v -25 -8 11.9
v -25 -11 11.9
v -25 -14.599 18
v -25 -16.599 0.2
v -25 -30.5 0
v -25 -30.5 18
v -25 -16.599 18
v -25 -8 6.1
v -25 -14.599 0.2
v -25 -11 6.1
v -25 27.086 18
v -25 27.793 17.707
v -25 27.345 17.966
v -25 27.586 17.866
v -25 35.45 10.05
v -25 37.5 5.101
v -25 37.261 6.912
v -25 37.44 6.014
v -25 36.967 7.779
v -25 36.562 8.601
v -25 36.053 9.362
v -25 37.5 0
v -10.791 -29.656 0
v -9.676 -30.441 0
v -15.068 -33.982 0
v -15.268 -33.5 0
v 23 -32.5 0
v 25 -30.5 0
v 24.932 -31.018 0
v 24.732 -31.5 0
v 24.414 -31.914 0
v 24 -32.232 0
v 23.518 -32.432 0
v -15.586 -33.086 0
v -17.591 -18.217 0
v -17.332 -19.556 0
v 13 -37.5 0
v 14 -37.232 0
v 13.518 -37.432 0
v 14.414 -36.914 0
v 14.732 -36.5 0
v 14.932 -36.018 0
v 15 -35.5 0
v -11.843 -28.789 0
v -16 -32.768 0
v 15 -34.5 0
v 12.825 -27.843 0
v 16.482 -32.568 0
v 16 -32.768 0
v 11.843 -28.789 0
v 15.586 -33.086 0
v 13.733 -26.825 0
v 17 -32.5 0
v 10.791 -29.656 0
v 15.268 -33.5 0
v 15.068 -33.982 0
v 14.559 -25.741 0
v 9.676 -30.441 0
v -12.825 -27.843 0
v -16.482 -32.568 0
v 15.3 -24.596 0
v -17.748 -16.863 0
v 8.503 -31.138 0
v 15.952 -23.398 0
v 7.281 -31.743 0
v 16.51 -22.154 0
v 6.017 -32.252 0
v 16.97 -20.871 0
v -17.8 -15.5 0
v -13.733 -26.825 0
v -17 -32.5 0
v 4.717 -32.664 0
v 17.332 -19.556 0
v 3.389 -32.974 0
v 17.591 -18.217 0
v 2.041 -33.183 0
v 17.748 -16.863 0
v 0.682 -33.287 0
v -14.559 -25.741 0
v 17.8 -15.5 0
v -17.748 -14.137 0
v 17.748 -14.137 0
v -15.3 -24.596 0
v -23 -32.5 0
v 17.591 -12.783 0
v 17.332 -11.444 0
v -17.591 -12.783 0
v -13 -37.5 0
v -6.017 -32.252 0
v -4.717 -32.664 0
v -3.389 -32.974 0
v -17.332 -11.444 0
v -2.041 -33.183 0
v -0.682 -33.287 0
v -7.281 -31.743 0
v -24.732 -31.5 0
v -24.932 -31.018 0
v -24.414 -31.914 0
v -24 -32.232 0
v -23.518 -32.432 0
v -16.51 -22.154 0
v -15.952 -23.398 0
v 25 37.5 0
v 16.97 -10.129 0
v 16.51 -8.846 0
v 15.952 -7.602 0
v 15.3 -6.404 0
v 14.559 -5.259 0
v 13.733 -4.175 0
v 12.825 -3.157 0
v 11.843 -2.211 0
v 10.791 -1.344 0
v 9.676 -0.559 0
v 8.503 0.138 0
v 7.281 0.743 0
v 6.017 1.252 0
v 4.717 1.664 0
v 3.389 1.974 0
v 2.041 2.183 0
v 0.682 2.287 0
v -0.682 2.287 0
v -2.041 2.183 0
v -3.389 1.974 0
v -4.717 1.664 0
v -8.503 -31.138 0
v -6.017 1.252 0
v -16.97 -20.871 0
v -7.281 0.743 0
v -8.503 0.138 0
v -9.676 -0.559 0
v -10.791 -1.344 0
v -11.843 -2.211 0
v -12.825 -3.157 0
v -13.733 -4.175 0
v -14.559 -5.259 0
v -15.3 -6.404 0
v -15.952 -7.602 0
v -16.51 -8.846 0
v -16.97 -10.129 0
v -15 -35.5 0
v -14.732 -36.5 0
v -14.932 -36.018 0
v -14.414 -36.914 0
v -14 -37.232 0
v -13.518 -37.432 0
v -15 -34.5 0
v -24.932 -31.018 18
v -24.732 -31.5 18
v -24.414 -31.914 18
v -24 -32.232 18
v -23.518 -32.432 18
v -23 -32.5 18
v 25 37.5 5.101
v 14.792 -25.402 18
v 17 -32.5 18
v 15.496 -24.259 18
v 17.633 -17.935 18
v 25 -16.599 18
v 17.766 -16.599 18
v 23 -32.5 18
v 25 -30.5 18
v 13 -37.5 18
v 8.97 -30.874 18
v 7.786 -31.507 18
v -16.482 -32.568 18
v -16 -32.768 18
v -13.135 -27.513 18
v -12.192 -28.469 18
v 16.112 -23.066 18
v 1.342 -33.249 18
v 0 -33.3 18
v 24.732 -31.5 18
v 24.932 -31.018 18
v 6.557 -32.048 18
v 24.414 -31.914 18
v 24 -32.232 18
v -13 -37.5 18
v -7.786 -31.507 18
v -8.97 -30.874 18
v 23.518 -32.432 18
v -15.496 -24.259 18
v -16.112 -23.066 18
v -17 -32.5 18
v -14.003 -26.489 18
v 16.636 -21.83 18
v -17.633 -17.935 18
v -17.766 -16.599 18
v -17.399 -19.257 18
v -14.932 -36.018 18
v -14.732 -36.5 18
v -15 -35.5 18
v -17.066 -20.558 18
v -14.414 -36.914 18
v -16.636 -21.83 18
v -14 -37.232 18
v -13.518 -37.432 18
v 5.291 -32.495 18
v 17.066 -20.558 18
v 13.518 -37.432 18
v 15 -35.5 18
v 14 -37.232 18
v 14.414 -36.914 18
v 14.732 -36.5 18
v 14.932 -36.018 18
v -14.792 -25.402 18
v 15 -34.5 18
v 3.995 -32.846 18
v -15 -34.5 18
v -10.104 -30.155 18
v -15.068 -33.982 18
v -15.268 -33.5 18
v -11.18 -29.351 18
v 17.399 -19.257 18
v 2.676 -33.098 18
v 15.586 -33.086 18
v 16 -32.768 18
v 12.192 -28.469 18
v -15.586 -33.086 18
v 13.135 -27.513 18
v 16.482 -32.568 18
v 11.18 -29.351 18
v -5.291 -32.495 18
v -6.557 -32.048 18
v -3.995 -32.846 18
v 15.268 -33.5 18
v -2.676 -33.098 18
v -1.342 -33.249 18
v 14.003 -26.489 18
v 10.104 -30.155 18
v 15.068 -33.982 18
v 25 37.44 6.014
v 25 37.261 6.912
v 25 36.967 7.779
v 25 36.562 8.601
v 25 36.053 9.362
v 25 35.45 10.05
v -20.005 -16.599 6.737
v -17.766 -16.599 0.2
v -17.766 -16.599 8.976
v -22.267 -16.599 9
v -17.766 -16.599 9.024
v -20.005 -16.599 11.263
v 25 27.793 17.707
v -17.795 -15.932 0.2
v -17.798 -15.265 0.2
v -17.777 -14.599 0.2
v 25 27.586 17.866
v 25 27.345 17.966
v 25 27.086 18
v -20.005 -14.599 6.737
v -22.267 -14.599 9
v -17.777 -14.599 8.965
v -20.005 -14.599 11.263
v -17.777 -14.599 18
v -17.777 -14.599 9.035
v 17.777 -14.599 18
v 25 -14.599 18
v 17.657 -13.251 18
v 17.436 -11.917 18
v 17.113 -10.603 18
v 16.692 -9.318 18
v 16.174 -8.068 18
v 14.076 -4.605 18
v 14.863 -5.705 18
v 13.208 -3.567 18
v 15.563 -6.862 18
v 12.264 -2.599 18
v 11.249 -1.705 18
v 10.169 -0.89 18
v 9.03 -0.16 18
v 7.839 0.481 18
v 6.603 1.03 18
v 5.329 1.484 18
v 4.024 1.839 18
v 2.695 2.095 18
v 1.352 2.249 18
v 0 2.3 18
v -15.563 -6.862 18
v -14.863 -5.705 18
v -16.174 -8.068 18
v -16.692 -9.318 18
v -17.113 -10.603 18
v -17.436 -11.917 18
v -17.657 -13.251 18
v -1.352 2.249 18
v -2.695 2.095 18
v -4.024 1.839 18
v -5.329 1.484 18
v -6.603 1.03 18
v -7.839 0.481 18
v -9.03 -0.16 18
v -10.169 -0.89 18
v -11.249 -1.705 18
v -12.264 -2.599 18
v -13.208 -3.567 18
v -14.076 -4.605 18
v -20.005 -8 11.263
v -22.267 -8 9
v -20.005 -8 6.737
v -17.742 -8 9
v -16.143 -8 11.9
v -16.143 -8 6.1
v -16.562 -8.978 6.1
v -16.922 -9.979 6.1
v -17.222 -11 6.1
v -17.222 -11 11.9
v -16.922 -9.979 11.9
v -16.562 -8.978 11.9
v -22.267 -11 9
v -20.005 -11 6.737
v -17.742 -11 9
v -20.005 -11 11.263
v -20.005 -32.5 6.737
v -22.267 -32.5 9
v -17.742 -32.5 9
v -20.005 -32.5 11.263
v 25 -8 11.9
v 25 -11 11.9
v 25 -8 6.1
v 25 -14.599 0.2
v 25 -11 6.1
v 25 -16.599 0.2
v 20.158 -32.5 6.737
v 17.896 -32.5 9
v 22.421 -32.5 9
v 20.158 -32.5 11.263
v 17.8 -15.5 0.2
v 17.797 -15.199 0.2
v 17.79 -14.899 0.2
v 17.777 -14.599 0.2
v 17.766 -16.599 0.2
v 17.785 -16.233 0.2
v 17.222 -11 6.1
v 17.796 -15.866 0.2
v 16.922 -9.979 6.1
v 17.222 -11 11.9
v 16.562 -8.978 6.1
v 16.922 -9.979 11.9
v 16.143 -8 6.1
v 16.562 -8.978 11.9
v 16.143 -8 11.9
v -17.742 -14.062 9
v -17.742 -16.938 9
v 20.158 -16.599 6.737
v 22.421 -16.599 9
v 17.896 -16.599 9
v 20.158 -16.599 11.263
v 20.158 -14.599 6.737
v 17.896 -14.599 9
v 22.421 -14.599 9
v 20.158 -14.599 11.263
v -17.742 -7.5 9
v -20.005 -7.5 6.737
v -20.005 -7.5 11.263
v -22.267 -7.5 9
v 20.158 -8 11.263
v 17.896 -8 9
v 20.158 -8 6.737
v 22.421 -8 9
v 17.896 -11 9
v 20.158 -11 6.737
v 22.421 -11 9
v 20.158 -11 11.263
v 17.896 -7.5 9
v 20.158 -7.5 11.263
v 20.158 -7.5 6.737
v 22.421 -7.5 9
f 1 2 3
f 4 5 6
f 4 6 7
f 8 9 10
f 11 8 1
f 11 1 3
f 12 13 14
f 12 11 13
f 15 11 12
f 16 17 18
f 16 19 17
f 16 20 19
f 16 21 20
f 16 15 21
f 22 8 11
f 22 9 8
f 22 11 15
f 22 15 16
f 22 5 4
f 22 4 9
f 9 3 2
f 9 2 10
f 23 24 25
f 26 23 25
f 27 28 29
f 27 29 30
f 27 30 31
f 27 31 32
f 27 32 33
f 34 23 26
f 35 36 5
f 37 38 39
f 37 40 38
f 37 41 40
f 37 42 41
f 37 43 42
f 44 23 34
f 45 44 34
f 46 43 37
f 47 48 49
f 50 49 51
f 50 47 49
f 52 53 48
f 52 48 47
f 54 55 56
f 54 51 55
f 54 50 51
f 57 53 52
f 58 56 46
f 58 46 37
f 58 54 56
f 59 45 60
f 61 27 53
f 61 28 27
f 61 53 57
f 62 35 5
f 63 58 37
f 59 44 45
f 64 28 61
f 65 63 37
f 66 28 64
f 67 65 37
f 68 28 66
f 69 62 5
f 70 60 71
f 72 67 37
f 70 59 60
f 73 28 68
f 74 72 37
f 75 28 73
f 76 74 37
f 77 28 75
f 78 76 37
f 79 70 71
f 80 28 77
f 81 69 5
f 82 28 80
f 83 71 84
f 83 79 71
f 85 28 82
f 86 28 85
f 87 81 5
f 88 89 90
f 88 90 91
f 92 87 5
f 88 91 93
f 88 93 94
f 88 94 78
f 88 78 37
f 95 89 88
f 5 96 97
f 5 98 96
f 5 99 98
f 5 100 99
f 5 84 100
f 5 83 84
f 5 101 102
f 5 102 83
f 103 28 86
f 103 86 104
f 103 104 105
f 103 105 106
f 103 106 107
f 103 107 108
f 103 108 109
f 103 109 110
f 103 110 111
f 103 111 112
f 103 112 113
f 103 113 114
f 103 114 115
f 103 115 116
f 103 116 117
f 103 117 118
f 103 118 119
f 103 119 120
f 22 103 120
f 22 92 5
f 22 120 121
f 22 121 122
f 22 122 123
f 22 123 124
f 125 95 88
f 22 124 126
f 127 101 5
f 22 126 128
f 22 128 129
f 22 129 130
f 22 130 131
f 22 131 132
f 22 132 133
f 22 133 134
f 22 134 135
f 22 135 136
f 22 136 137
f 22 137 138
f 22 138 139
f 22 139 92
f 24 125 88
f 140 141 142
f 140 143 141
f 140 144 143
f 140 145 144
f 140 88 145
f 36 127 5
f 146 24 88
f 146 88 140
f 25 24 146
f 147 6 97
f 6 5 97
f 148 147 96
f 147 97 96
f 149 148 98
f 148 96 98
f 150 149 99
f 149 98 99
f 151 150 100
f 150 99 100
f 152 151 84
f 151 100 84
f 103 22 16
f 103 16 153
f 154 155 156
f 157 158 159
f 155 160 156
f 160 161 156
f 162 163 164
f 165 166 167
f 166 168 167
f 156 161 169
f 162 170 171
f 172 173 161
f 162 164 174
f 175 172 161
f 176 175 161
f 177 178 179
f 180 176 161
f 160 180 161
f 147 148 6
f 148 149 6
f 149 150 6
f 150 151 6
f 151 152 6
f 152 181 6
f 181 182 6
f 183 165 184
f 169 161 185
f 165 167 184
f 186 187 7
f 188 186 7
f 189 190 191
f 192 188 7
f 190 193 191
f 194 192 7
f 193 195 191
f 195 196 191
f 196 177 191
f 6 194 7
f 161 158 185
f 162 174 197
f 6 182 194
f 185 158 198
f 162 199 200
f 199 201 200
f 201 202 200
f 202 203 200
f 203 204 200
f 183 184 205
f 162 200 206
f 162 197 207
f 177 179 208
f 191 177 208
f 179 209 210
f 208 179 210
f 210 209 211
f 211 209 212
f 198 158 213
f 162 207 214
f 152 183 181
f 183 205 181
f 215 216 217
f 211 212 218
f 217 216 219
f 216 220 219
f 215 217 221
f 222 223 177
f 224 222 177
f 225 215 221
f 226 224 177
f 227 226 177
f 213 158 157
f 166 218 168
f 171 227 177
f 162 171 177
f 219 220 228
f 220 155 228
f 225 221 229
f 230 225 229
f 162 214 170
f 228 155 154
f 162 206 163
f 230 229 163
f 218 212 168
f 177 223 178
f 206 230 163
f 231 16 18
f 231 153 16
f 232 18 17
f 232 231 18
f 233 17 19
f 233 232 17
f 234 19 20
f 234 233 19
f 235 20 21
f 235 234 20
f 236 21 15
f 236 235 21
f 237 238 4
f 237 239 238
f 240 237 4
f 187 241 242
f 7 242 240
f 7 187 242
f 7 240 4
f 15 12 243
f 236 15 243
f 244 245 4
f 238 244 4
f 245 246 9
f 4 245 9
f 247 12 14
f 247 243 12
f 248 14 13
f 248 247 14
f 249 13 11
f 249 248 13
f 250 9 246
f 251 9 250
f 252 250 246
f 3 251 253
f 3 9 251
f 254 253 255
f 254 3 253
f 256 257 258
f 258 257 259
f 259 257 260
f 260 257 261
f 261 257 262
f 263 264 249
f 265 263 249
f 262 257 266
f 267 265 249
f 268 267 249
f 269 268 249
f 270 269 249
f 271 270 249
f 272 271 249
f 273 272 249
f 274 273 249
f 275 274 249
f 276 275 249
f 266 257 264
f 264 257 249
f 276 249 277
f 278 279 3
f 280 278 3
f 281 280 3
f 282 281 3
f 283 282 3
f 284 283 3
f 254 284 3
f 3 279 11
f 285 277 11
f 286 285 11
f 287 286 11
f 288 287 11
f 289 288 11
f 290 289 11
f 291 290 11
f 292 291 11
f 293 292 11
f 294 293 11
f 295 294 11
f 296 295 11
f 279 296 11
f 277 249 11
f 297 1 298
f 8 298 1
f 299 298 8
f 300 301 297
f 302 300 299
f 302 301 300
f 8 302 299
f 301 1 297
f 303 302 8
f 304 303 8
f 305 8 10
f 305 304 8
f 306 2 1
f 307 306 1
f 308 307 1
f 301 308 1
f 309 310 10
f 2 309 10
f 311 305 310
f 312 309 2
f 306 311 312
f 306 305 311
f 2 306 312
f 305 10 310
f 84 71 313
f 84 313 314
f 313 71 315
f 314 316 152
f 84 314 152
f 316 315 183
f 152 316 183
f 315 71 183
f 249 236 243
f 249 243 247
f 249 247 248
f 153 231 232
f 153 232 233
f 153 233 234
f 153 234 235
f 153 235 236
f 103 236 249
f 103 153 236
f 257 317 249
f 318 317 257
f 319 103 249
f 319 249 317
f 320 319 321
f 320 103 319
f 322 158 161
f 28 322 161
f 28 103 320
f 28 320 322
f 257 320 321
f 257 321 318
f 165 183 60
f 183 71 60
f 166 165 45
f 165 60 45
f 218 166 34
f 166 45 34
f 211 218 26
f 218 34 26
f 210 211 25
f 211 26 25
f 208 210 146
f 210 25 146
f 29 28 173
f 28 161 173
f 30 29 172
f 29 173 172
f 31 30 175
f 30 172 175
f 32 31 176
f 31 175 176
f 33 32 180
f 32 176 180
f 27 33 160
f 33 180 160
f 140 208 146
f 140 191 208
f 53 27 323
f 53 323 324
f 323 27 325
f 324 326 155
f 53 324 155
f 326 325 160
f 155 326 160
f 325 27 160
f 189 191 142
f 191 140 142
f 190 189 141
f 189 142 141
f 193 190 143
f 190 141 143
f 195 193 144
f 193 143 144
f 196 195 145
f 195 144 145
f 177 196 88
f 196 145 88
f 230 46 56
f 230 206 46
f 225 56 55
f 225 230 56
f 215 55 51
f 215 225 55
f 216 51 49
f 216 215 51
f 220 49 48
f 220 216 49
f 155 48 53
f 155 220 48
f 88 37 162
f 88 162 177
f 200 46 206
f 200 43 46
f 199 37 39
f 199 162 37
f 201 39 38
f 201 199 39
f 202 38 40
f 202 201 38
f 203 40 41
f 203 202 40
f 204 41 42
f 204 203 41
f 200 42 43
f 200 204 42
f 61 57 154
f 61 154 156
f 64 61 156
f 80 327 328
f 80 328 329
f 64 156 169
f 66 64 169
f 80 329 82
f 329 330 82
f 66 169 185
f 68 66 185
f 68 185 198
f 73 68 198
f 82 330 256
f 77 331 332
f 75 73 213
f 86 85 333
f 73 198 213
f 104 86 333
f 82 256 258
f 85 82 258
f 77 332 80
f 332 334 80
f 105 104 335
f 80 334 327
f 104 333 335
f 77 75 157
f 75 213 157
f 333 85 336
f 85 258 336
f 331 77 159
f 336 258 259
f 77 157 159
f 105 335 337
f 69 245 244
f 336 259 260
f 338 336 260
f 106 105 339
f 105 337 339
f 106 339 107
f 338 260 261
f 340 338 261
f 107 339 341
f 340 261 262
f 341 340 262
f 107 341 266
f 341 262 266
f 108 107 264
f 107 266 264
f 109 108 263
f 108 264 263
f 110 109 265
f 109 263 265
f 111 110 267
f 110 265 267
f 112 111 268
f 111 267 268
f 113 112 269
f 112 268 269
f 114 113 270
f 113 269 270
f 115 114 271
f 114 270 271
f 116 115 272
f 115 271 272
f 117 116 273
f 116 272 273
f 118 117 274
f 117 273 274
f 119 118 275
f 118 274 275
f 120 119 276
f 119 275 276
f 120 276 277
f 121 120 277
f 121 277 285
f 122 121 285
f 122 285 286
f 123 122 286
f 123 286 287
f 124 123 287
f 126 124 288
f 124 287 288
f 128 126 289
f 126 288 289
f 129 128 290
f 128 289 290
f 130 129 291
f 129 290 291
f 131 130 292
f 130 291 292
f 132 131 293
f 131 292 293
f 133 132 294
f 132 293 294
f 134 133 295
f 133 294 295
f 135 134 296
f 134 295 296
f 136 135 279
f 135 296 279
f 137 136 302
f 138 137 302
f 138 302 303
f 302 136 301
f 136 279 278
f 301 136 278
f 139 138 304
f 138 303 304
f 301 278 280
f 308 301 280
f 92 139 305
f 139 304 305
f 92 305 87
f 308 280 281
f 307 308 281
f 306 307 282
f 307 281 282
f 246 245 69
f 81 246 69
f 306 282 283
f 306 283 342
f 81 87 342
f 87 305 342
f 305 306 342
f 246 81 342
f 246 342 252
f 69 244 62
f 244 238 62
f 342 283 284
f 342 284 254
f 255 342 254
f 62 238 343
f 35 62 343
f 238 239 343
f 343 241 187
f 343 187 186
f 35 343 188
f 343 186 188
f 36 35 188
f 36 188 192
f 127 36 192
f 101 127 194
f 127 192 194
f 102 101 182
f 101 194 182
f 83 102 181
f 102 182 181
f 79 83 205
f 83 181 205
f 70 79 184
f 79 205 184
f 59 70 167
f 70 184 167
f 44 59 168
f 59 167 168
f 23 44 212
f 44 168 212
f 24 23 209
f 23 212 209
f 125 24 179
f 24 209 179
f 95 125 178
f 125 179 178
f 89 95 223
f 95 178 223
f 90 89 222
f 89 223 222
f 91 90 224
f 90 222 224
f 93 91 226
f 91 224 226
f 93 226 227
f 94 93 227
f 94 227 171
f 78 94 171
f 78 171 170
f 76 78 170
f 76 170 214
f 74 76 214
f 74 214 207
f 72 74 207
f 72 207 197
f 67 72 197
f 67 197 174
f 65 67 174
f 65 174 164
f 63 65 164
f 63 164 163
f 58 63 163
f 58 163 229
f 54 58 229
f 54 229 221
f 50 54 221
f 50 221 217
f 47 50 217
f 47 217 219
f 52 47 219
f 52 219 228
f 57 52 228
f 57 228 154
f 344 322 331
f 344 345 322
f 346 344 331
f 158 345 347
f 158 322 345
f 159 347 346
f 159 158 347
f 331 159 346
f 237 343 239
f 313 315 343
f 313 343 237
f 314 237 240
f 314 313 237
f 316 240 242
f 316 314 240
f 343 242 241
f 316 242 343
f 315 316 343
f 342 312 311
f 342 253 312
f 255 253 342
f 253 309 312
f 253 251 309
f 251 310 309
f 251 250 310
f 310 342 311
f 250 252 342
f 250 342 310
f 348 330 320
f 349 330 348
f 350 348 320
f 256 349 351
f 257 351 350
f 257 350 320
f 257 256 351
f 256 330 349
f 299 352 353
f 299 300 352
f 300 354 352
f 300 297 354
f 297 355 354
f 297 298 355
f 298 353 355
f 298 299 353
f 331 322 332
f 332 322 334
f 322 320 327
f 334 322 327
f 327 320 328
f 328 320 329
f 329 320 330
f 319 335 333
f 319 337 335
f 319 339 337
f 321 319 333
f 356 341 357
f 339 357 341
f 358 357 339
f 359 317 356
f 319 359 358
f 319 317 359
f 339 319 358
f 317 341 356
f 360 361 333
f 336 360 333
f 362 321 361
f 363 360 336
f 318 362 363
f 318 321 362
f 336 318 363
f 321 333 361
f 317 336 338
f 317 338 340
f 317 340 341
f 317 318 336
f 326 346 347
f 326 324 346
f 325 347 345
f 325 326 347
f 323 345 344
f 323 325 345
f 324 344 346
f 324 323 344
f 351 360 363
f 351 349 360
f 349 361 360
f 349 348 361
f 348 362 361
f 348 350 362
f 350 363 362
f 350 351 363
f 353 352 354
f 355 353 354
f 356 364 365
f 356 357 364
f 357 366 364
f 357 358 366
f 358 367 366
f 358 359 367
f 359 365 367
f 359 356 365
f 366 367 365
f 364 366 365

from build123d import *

# Parameters (mm, degrees)
SKETCH_W        = 50
SKETCH_H        = 75
PAD_DEPTH       = 18
SKETCH001_R     = 17.8
POCKET_DEPTH    = 18.001
SKETCH005_W     = 25.040878
SKETCH005_H     = 24.535461
SKETCH005_W_2   = 12.208063
SKETCH005_H_2   = 50.590956
POCKET001_DEPTH = 5
POCKET002_DEPTH = 25
SKETCH003_W     = 3
SKETCH003_H     = 5.8
POCKET003_DEPTH = 50.001
SKETCH004_W     = 72.31723
SKETCH004_H     = 2
POCKET004_DEPTH = 17.8
CHAMFER_SIZE    = 10
FILLET_R        = 7
FILLET001_R     = 1
FILLET002_R     = 2


with BuildPart() as part:
    # Sketch → Pad (new body)
    with BuildSketch(Plane.XY):
        Rectangle(SKETCH_W, SKETCH_H)
    extrude(amount=PAD_DEPTH)

    # Sketch001 → Pocket (cut, through all)
    with BuildSketch(Plane.XY.offset(18)):
        with Locations((0, -15.5)):
            Circle(SKETCH001_R)
    extrude(amount=-POCKET_DEPTH, mode=Mode.SUBTRACT)

    # Sketch005 → Pocket001 (cut)
    with BuildSketch(Plane.XZ.offset(37.5)):
        with Locations((-27.520439, 8.08709)):
            Rectangle(SKETCH005_W, SKETCH005_H)
        with Locations((21.104031, -3.872155)):
            Rectangle(SKETCH005_W_2, SKETCH005_H_2)
    extrude(amount=-POCKET001_DEPTH, mode=Mode.SUBTRACT)

    # Sketch002 → Pocket002 (cut)
    with BuildSketch(Plane.XZ.offset(32.5)):
        Polygon((-22.267329, 9), (-20.004588, 11.262742), (-17.741846, 9), (-20.004588, 6.737258), align=None)
        Polygon((17.895693, 9), (20.158435, 11.262742), (22.421177, 9), (20.158435, 6.737258), align=None)
    extrude(amount=-POCKET002_DEPTH, mode=Mode.SUBTRACT)

    # Sketch003 → Pocket003 (cut, through all)
    with BuildSketch(Plane.YZ.offset(25)):
        with Locations((-9.5, 9)):
            Rectangle(SKETCH003_W, SKETCH003_H)
    extrude(amount=-POCKET003_DEPTH, mode=Mode.SUBTRACT)

    # Sketch004 → Pocket004 (cut)
    with BuildSketch(Plane.XY.offset(18)):
        with Locations((-0.391915, -15.598591)):
            Rectangle(SKETCH004_W, SKETCH004_H)
    extrude(amount=-POCKET004_DEPTH, mode=Mode.SUBTRACT)

    # Chamfer
    chamfer_edges = [part.edges().sort_by_distance(p)[0] for p in [
        (0, 37.5, 18),
    ]]
    chamfer(chamfer_edges, length=CHAMFER_SIZE)

    # Fillet
    fillet_edges = [part.edges().sort_by_distance(p)[0] for p in [
        (0, 37.5, 8),
    ]]
    fillet(fillet_edges, radius=FILLET_R)

    # Fillet001
    fillet001_edges = [part.edges().sort_by_distance(p)[0] for p in [
        (0, 27.5, 18),
    ]]
    fillet(fillet001_edges, radius=FILLET001_R)

    # Fillet002
    fillet002_edges = [part.edges().sort_by_distance(p)[0] for p in [
        (15, -32.5, 9),
        (25, -32.5, 9),
        (15, -37.5, 9),
        (-15, -32.5, 9),
        (-15, -37.5, 9),
        (-25, -32.5, 9),
    ]]
    fillet(fillet002_edges, radius=FILLET002_R)


solid = part.part
